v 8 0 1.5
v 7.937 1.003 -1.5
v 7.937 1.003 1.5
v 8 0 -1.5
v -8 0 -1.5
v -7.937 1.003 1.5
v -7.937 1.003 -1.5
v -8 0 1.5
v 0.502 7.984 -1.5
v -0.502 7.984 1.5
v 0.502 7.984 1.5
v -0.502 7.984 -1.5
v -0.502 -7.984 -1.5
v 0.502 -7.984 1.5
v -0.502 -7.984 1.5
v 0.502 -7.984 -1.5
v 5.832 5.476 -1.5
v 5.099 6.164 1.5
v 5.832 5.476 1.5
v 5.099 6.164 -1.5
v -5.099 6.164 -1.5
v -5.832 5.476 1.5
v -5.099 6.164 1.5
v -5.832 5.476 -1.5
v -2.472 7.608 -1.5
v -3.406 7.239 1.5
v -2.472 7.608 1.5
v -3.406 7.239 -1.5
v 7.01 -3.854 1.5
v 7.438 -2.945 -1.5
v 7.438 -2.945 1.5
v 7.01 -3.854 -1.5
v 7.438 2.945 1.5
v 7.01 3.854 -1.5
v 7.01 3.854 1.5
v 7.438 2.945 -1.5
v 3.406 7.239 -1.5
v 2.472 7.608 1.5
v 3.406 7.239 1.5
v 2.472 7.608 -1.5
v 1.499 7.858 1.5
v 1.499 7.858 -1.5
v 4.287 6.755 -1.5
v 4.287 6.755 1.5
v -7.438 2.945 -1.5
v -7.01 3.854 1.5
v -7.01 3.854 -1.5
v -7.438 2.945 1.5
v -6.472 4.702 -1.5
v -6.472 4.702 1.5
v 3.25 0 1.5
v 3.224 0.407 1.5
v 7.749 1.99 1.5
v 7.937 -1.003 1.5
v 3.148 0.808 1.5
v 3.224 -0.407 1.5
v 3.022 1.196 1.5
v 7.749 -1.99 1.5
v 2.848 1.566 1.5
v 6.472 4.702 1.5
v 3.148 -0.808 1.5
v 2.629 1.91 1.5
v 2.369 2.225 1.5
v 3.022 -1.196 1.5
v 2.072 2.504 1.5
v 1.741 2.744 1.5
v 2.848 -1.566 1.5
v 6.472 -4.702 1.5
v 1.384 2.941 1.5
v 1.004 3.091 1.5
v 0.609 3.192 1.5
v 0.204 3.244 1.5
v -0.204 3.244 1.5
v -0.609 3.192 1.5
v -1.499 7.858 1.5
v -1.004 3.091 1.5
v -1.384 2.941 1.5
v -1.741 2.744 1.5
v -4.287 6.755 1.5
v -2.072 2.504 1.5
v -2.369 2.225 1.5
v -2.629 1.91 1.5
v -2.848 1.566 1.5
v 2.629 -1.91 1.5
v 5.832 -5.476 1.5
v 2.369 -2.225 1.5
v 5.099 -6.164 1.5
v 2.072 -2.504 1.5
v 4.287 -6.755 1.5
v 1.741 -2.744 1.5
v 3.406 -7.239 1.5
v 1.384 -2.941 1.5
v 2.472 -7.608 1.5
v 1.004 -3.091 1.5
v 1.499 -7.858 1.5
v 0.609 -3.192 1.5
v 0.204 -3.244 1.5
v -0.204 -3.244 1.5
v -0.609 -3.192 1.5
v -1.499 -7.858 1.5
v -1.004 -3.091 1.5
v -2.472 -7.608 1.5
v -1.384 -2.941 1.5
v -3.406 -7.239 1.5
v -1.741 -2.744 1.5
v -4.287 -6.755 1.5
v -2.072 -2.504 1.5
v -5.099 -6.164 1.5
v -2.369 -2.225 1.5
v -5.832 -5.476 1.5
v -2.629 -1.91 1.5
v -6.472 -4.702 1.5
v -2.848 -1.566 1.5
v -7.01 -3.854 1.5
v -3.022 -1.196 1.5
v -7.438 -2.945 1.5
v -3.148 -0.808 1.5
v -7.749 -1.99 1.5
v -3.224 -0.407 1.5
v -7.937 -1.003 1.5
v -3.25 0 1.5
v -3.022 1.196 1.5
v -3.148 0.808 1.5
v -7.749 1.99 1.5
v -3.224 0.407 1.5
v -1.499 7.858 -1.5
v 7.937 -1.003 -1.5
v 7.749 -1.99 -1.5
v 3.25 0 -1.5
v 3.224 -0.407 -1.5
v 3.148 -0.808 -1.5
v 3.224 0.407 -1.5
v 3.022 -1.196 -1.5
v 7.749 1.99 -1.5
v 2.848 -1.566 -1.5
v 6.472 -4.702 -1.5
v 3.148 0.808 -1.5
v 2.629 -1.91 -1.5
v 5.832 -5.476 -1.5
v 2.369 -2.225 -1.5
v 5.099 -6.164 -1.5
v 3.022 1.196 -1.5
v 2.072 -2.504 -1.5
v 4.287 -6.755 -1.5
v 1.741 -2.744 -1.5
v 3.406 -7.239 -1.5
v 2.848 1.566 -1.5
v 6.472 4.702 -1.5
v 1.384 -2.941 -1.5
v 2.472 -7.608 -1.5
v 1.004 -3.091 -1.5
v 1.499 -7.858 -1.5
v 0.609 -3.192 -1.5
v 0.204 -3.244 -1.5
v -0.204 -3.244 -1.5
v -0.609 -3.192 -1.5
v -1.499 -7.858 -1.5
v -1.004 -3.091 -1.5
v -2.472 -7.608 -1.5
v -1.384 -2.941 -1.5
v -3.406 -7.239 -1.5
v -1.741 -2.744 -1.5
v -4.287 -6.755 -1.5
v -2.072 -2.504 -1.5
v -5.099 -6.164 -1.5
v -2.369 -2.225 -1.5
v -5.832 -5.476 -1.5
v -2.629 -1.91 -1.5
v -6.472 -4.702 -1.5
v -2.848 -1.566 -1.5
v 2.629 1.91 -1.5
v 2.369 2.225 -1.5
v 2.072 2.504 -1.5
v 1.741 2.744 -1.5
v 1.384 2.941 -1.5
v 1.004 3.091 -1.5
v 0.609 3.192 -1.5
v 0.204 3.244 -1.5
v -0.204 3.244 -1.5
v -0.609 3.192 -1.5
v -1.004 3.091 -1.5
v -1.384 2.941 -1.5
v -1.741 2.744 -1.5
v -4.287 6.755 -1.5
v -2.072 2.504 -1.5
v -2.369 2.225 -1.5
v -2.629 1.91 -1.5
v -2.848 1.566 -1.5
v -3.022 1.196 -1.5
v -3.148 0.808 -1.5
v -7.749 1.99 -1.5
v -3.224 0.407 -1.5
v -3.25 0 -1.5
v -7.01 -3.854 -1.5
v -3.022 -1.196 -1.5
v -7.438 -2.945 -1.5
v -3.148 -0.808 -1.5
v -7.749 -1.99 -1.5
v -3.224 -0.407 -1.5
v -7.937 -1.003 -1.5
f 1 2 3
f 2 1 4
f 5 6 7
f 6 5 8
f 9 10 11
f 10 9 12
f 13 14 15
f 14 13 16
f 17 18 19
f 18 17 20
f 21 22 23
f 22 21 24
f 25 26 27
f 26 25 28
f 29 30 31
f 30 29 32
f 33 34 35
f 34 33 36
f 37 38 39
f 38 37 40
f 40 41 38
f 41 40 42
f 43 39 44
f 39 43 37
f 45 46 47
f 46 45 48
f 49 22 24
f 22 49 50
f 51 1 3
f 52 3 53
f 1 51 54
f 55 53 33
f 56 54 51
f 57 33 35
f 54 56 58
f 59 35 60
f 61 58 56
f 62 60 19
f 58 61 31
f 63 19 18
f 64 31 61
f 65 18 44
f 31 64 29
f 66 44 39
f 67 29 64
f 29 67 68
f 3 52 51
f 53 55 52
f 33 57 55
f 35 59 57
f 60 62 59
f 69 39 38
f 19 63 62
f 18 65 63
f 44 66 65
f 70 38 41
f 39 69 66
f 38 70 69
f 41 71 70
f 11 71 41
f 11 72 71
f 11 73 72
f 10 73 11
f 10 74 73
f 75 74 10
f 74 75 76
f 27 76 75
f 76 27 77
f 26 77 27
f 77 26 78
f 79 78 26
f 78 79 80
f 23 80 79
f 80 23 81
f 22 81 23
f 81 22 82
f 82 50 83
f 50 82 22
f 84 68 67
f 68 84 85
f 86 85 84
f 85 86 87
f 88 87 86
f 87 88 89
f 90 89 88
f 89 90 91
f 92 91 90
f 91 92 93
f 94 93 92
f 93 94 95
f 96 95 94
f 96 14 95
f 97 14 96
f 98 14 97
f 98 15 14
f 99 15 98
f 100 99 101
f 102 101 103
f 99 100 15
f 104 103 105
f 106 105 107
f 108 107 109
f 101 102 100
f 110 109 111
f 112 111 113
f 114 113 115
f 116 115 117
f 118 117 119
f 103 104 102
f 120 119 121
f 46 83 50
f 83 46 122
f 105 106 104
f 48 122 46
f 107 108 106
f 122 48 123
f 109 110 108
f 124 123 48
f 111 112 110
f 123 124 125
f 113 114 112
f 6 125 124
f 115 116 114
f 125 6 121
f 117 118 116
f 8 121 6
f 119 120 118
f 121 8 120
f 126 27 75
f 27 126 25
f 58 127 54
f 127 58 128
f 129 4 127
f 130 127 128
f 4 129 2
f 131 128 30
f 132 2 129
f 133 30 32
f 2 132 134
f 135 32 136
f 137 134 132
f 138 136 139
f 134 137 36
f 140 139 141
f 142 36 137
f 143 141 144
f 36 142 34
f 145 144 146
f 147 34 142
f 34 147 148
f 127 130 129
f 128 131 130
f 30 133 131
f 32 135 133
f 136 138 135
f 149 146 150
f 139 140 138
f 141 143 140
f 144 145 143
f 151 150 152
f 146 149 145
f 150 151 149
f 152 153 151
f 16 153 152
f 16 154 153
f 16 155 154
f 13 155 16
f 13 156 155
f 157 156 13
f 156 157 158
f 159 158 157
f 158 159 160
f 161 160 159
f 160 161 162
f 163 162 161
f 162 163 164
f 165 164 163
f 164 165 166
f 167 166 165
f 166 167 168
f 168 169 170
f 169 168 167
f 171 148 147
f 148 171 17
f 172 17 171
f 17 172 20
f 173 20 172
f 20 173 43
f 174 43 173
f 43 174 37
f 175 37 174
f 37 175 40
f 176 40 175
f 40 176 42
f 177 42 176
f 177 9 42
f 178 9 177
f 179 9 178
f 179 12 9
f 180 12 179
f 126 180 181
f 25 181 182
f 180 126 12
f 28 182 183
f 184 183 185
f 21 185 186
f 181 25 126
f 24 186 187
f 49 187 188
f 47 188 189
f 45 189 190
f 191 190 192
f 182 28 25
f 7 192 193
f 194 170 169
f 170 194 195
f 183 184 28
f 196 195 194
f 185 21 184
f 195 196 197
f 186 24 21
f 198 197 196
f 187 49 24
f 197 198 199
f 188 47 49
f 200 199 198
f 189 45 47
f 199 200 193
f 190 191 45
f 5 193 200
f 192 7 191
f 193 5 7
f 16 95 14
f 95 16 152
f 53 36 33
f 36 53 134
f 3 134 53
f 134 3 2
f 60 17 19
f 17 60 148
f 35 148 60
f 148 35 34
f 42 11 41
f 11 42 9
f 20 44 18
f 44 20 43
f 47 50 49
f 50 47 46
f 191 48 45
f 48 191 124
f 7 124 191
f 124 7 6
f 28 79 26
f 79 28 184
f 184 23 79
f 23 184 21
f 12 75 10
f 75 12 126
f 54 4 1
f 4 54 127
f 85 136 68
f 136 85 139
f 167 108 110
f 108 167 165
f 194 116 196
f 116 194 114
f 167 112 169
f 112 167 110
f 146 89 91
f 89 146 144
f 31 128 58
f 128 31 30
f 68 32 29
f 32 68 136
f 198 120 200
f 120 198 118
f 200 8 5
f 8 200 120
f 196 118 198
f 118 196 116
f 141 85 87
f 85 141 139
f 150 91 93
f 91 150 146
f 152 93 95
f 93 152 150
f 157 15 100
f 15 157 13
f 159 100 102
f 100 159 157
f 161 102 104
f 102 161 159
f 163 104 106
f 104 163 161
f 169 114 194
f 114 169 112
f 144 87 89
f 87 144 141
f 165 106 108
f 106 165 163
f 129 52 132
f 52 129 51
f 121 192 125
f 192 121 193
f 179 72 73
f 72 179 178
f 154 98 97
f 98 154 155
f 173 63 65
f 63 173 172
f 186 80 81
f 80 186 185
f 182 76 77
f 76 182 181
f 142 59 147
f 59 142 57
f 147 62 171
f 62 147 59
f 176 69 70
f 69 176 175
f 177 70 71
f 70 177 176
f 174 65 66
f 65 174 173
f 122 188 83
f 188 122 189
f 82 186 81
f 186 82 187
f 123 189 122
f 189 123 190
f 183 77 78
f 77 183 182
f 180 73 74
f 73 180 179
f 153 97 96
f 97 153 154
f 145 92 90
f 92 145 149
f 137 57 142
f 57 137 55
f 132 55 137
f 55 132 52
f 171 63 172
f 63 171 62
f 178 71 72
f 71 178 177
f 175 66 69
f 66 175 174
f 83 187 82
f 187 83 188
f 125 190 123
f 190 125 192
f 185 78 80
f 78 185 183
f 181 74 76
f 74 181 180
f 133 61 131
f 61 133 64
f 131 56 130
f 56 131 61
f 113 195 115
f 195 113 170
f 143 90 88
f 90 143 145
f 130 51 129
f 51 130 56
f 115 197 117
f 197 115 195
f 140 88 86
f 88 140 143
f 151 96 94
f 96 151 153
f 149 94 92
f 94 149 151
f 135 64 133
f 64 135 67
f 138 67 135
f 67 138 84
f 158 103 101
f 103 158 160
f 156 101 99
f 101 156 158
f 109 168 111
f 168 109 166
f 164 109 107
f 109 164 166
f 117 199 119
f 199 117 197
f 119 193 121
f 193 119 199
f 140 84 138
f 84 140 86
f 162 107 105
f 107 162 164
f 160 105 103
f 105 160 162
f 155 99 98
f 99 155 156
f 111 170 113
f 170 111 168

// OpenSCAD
$fn = 50;


difference() {
	union() {
		translate(v = [0, 0, -1.5000000000]) {
			cylinder(h = 3, r = 8.0000000000);
		}
	}
	union() {
		translate(v = [0, 0, -100.0000000000]) {
			cylinder(h = 200, r = 3.2500000000);
		}
	}
}
